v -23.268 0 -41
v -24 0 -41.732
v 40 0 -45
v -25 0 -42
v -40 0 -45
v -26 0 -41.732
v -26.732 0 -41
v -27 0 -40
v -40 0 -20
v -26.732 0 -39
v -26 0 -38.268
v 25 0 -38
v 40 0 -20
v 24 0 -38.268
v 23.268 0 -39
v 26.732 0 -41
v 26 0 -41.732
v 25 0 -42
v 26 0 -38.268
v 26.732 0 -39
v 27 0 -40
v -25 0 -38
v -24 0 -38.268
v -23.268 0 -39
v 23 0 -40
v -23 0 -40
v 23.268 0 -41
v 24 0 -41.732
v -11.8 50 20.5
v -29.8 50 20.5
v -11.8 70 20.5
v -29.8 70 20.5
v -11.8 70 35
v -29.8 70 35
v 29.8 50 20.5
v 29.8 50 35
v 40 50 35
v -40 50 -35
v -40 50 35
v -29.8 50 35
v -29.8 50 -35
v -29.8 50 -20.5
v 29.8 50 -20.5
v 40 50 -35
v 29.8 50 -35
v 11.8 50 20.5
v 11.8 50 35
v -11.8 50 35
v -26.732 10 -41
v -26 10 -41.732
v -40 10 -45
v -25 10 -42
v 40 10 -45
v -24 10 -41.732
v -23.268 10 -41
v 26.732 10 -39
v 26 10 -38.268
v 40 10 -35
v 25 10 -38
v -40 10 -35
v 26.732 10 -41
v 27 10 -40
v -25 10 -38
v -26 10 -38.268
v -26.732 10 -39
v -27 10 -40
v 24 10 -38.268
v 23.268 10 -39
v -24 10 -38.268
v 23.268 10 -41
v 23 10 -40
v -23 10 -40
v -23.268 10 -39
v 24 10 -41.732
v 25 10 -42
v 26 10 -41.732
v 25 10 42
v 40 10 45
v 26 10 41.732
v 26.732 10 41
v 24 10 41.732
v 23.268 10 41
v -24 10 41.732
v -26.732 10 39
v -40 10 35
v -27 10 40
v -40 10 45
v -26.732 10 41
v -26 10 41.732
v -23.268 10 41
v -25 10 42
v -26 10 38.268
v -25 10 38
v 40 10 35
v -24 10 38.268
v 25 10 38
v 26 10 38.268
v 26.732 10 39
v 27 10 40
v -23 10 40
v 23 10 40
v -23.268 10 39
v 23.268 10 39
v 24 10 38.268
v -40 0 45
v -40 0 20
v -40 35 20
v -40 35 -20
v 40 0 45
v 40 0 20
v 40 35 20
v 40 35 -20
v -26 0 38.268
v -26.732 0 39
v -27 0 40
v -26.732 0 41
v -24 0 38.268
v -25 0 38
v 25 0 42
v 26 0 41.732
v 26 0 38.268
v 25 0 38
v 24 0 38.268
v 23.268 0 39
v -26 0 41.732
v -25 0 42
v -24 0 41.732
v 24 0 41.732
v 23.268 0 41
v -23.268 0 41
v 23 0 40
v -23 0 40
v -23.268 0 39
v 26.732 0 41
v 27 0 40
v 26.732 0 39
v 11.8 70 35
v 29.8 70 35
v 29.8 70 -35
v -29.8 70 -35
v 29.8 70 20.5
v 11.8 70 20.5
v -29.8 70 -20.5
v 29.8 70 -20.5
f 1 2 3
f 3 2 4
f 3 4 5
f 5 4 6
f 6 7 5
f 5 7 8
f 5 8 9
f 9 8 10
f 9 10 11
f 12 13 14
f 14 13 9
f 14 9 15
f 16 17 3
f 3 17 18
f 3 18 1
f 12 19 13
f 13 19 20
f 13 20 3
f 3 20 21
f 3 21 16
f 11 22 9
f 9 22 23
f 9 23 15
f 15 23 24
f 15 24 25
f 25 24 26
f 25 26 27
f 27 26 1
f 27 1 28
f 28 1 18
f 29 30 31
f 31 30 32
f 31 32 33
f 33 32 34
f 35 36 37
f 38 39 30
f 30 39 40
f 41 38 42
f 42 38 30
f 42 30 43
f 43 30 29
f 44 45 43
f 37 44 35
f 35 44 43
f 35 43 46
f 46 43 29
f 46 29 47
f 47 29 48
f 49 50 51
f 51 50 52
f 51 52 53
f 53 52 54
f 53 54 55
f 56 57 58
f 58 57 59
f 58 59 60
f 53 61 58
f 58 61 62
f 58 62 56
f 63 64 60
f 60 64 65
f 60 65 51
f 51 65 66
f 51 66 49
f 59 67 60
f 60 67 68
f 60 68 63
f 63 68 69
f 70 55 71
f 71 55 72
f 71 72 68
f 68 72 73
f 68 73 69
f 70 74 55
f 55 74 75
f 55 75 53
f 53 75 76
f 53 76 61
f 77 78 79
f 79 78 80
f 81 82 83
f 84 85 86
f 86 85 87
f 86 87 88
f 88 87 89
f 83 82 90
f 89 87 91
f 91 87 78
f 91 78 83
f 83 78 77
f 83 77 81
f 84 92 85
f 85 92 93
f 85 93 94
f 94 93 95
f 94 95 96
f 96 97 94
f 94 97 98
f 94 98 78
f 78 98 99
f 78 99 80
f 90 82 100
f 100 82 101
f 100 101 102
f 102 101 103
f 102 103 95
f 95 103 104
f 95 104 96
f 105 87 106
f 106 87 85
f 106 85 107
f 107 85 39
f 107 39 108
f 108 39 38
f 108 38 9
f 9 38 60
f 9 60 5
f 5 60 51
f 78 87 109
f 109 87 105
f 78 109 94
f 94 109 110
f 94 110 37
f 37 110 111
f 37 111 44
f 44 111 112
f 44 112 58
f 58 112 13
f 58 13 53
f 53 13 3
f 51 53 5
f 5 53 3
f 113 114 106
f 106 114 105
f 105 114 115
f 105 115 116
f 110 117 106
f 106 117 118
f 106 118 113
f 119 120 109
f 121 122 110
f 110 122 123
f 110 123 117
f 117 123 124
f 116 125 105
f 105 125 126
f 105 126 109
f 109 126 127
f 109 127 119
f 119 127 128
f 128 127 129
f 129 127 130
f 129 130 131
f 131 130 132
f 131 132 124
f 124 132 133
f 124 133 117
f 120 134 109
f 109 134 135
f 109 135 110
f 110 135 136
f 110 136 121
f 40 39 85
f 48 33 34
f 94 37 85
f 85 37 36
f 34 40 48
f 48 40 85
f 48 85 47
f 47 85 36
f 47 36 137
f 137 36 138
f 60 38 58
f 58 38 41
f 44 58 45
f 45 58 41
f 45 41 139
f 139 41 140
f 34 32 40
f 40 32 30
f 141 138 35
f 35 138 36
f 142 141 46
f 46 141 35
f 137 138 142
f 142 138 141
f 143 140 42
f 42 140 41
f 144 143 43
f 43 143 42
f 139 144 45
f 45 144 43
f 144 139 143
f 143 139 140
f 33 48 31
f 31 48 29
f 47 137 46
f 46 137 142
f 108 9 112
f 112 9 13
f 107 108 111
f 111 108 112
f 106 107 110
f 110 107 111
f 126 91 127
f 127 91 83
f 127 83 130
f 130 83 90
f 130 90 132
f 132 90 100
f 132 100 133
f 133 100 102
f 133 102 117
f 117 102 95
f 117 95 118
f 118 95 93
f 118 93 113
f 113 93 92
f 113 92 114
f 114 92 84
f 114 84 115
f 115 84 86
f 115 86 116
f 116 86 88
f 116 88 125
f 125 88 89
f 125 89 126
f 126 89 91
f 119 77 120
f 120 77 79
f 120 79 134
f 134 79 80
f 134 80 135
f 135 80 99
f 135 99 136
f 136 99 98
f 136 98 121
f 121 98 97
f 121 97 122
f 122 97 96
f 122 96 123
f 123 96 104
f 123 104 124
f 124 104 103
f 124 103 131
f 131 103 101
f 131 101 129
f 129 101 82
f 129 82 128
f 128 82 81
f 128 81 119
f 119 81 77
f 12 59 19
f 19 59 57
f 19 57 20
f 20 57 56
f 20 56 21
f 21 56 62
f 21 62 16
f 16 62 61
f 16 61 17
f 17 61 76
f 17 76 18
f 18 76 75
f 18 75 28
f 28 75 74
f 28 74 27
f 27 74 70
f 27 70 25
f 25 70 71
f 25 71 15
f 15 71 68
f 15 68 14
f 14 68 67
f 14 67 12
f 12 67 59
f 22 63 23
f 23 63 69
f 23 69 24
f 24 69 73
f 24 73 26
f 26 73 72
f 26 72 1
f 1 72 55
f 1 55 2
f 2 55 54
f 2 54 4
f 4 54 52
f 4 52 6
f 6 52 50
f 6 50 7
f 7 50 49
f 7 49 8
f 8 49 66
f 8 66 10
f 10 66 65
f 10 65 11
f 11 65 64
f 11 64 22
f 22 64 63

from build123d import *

# Parameters (mm, degrees)
SKETCH1_W           = 80
SKETCH1_H           = 90
BOSS_EXTRUDE1_DEPTH = 10
SKETCH2_W           = 80
SKETCH2_H           = 70
BOSS_EXTRUDE2_DEPTH = 40
SKETCH3_W           = 59.6
SKETCH3_H           = 14.5
BOSS_EXTRUDE3_DEPTH = 20
CUT_EXTRUDE1_REACH  = 115.578
SKETCH6_W           = 23.6
SKETCH6_H           = 20
CUT_EXTRUDE2_REACH  = 117.434
SKETCH7_W           = 40
SKETCH7_H           = 35
CUT_EXTRUDE3_REACH  = 87
SKETCH8_R           = 2


with BuildPart() as part:
    # Sketch1 → Boss-Extrude1 (new body)
    with BuildSketch(Plane(origin=(0, 0, 0), x_dir=(1, 0, 0), z_dir=(0, 1, 0))):
        Rectangle(SKETCH1_W, SKETCH1_H)
    extrude(amount=BOSS_EXTRUDE1_DEPTH)

    # Sketch2 → Boss-Extrude2 (add)
    with BuildSketch(Plane(origin=(0, 10, 0), x_dir=(1, 0, 0), z_dir=(0, 1, 0))):
        Rectangle(SKETCH2_W, SKETCH2_H)
    extrude(amount=BOSS_EXTRUDE2_DEPTH)

    # Sketch3 → Boss-Extrude3 (add)
    with BuildSketch(Plane(origin=(0, 50, 0), x_dir=(1, 0, 0), z_dir=(0, 1, 0))):
        with Locations((0, -27.75)):
            Rectangle(SKETCH3_W, SKETCH3_H)
        with Locations((0, 27.75)):
            Rectangle(SKETCH3_W, SKETCH3_H)
    extrude(amount=BOSS_EXTRUDE3_DEPTH)

    # Sketch6 → Cut-Extrude1 (cut, up to next)
    with BuildSketch(Plane.XY.offset(35), mode=Mode.PRIVATE) as cut_extrude1_sk1:
        with Locations((0, 60)):
            Rectangle(SKETCH6_W, SKETCH6_H)
    cut_extrude1_tool1 = extrude(cut_extrude1_sk1.sketch, amount=-CUT_EXTRUDE1_REACH, mode=Mode.PRIVATE) & part.part
    add(cut_extrude1_tool1.solids().sort_by_distance((0, 60, 35))[0], mode=Mode.SUBTRACT)

    # Sketch7 → Cut-Extrude2 (cut, up to next)
    with BuildSketch(Plane.ZY.offset(40), mode=Mode.PRIVATE) as cut_extrude2_sk1:
        with Locations((0, 17.5)):
            Rectangle(SKETCH7_W, SKETCH7_H)
    cut_extrude2_tool1 = extrude(cut_extrude2_sk1.sketch, amount=-CUT_EXTRUDE2_REACH, mode=Mode.PRIVATE) & part.part
    add(cut_extrude2_tool1.solids().sort_by_distance((-40, 17.5, 0))[0], mode=Mode.SUBTRACT)

    # Sketch8 → Cut-Extrude3 (cut, up to next)
    with BuildSketch(Plane(origin=(0, 10, 0), x_dir=(1, 0, 0), z_dir=(0, 1, 0)), mode=Mode.PRIVATE) as cut_extrude3_sk1:
        with Locations(Location((-25, -40, 0), (0, 0, 270))):
            Circle(SKETCH8_R)
    cut_extrude3_tool1 = extrude(cut_extrude3_sk1.sketch, amount=-CUT_EXTRUDE3_REACH, mode=Mode.PRIVATE) & part.part
    # Sketch8 → Cut-Extrude3 (cut, up to next)
    with BuildSketch(Plane(origin=(0, 10, 0), x_dir=(1, 0, 0), z_dir=(0, 1, 0)), mode=Mode.PRIVATE) as cut_extrude3_sk2:
        with Locations(Location((25, -40, 0), (0, 0, 270))):
            Circle(SKETCH8_R)
    cut_extrude3_tool2 = extrude(cut_extrude3_sk2.sketch, amount=-CUT_EXTRUDE3_REACH, mode=Mode.PRIVATE) & part.part
    # Sketch8 → Cut-Extrude3 (cut, up to next)
    with BuildSketch(Plane(origin=(0, 10, 0), x_dir=(1, 0, 0), z_dir=(0, 1, 0)), mode=Mode.PRIVATE) as cut_extrude3_sk3:
        with Locations(Location((25, 40, 0), (0, 0, 270))):
            Circle(SKETCH8_R)
    cut_extrude3_tool3 = extrude(cut_extrude3_sk3.sketch, amount=-CUT_EXTRUDE3_REACH, mode=Mode.PRIVATE) & part.part
    # Sketch8 → Cut-Extrude3 (cut, up to next)
    with BuildSketch(Plane(origin=(0, 10, 0), x_dir=(1, 0, 0), z_dir=(0, 1, 0)), mode=Mode.PRIVATE) as cut_extrude3_sk4:
        with Locations(Location((-25, 40, 0), (0, 0, 270))):
            Circle(SKETCH8_R)
    cut_extrude3_tool4 = extrude(cut_extrude3_sk4.sketch, amount=-CUT_EXTRUDE3_REACH, mode=Mode.PRIVATE) & part.part
    add(cut_extrude3_tool1.solids().sort_by_distance((-25, 10, 40))[0], mode=Mode.SUBTRACT)
    add(cut_extrude3_tool2.solids().sort_by_distance((25, 10, 40))[0], mode=Mode.SUBTRACT)
    add(cut_extrude3_tool3.solids().sort_by_distance((25, 10, -40))[0], mode=Mode.SUBTRACT)
    add(cut_extrude3_tool4.solids().sort_by_distance((-25, 10, -40))[0], mode=Mode.SUBTRACT)


solid = part.part
